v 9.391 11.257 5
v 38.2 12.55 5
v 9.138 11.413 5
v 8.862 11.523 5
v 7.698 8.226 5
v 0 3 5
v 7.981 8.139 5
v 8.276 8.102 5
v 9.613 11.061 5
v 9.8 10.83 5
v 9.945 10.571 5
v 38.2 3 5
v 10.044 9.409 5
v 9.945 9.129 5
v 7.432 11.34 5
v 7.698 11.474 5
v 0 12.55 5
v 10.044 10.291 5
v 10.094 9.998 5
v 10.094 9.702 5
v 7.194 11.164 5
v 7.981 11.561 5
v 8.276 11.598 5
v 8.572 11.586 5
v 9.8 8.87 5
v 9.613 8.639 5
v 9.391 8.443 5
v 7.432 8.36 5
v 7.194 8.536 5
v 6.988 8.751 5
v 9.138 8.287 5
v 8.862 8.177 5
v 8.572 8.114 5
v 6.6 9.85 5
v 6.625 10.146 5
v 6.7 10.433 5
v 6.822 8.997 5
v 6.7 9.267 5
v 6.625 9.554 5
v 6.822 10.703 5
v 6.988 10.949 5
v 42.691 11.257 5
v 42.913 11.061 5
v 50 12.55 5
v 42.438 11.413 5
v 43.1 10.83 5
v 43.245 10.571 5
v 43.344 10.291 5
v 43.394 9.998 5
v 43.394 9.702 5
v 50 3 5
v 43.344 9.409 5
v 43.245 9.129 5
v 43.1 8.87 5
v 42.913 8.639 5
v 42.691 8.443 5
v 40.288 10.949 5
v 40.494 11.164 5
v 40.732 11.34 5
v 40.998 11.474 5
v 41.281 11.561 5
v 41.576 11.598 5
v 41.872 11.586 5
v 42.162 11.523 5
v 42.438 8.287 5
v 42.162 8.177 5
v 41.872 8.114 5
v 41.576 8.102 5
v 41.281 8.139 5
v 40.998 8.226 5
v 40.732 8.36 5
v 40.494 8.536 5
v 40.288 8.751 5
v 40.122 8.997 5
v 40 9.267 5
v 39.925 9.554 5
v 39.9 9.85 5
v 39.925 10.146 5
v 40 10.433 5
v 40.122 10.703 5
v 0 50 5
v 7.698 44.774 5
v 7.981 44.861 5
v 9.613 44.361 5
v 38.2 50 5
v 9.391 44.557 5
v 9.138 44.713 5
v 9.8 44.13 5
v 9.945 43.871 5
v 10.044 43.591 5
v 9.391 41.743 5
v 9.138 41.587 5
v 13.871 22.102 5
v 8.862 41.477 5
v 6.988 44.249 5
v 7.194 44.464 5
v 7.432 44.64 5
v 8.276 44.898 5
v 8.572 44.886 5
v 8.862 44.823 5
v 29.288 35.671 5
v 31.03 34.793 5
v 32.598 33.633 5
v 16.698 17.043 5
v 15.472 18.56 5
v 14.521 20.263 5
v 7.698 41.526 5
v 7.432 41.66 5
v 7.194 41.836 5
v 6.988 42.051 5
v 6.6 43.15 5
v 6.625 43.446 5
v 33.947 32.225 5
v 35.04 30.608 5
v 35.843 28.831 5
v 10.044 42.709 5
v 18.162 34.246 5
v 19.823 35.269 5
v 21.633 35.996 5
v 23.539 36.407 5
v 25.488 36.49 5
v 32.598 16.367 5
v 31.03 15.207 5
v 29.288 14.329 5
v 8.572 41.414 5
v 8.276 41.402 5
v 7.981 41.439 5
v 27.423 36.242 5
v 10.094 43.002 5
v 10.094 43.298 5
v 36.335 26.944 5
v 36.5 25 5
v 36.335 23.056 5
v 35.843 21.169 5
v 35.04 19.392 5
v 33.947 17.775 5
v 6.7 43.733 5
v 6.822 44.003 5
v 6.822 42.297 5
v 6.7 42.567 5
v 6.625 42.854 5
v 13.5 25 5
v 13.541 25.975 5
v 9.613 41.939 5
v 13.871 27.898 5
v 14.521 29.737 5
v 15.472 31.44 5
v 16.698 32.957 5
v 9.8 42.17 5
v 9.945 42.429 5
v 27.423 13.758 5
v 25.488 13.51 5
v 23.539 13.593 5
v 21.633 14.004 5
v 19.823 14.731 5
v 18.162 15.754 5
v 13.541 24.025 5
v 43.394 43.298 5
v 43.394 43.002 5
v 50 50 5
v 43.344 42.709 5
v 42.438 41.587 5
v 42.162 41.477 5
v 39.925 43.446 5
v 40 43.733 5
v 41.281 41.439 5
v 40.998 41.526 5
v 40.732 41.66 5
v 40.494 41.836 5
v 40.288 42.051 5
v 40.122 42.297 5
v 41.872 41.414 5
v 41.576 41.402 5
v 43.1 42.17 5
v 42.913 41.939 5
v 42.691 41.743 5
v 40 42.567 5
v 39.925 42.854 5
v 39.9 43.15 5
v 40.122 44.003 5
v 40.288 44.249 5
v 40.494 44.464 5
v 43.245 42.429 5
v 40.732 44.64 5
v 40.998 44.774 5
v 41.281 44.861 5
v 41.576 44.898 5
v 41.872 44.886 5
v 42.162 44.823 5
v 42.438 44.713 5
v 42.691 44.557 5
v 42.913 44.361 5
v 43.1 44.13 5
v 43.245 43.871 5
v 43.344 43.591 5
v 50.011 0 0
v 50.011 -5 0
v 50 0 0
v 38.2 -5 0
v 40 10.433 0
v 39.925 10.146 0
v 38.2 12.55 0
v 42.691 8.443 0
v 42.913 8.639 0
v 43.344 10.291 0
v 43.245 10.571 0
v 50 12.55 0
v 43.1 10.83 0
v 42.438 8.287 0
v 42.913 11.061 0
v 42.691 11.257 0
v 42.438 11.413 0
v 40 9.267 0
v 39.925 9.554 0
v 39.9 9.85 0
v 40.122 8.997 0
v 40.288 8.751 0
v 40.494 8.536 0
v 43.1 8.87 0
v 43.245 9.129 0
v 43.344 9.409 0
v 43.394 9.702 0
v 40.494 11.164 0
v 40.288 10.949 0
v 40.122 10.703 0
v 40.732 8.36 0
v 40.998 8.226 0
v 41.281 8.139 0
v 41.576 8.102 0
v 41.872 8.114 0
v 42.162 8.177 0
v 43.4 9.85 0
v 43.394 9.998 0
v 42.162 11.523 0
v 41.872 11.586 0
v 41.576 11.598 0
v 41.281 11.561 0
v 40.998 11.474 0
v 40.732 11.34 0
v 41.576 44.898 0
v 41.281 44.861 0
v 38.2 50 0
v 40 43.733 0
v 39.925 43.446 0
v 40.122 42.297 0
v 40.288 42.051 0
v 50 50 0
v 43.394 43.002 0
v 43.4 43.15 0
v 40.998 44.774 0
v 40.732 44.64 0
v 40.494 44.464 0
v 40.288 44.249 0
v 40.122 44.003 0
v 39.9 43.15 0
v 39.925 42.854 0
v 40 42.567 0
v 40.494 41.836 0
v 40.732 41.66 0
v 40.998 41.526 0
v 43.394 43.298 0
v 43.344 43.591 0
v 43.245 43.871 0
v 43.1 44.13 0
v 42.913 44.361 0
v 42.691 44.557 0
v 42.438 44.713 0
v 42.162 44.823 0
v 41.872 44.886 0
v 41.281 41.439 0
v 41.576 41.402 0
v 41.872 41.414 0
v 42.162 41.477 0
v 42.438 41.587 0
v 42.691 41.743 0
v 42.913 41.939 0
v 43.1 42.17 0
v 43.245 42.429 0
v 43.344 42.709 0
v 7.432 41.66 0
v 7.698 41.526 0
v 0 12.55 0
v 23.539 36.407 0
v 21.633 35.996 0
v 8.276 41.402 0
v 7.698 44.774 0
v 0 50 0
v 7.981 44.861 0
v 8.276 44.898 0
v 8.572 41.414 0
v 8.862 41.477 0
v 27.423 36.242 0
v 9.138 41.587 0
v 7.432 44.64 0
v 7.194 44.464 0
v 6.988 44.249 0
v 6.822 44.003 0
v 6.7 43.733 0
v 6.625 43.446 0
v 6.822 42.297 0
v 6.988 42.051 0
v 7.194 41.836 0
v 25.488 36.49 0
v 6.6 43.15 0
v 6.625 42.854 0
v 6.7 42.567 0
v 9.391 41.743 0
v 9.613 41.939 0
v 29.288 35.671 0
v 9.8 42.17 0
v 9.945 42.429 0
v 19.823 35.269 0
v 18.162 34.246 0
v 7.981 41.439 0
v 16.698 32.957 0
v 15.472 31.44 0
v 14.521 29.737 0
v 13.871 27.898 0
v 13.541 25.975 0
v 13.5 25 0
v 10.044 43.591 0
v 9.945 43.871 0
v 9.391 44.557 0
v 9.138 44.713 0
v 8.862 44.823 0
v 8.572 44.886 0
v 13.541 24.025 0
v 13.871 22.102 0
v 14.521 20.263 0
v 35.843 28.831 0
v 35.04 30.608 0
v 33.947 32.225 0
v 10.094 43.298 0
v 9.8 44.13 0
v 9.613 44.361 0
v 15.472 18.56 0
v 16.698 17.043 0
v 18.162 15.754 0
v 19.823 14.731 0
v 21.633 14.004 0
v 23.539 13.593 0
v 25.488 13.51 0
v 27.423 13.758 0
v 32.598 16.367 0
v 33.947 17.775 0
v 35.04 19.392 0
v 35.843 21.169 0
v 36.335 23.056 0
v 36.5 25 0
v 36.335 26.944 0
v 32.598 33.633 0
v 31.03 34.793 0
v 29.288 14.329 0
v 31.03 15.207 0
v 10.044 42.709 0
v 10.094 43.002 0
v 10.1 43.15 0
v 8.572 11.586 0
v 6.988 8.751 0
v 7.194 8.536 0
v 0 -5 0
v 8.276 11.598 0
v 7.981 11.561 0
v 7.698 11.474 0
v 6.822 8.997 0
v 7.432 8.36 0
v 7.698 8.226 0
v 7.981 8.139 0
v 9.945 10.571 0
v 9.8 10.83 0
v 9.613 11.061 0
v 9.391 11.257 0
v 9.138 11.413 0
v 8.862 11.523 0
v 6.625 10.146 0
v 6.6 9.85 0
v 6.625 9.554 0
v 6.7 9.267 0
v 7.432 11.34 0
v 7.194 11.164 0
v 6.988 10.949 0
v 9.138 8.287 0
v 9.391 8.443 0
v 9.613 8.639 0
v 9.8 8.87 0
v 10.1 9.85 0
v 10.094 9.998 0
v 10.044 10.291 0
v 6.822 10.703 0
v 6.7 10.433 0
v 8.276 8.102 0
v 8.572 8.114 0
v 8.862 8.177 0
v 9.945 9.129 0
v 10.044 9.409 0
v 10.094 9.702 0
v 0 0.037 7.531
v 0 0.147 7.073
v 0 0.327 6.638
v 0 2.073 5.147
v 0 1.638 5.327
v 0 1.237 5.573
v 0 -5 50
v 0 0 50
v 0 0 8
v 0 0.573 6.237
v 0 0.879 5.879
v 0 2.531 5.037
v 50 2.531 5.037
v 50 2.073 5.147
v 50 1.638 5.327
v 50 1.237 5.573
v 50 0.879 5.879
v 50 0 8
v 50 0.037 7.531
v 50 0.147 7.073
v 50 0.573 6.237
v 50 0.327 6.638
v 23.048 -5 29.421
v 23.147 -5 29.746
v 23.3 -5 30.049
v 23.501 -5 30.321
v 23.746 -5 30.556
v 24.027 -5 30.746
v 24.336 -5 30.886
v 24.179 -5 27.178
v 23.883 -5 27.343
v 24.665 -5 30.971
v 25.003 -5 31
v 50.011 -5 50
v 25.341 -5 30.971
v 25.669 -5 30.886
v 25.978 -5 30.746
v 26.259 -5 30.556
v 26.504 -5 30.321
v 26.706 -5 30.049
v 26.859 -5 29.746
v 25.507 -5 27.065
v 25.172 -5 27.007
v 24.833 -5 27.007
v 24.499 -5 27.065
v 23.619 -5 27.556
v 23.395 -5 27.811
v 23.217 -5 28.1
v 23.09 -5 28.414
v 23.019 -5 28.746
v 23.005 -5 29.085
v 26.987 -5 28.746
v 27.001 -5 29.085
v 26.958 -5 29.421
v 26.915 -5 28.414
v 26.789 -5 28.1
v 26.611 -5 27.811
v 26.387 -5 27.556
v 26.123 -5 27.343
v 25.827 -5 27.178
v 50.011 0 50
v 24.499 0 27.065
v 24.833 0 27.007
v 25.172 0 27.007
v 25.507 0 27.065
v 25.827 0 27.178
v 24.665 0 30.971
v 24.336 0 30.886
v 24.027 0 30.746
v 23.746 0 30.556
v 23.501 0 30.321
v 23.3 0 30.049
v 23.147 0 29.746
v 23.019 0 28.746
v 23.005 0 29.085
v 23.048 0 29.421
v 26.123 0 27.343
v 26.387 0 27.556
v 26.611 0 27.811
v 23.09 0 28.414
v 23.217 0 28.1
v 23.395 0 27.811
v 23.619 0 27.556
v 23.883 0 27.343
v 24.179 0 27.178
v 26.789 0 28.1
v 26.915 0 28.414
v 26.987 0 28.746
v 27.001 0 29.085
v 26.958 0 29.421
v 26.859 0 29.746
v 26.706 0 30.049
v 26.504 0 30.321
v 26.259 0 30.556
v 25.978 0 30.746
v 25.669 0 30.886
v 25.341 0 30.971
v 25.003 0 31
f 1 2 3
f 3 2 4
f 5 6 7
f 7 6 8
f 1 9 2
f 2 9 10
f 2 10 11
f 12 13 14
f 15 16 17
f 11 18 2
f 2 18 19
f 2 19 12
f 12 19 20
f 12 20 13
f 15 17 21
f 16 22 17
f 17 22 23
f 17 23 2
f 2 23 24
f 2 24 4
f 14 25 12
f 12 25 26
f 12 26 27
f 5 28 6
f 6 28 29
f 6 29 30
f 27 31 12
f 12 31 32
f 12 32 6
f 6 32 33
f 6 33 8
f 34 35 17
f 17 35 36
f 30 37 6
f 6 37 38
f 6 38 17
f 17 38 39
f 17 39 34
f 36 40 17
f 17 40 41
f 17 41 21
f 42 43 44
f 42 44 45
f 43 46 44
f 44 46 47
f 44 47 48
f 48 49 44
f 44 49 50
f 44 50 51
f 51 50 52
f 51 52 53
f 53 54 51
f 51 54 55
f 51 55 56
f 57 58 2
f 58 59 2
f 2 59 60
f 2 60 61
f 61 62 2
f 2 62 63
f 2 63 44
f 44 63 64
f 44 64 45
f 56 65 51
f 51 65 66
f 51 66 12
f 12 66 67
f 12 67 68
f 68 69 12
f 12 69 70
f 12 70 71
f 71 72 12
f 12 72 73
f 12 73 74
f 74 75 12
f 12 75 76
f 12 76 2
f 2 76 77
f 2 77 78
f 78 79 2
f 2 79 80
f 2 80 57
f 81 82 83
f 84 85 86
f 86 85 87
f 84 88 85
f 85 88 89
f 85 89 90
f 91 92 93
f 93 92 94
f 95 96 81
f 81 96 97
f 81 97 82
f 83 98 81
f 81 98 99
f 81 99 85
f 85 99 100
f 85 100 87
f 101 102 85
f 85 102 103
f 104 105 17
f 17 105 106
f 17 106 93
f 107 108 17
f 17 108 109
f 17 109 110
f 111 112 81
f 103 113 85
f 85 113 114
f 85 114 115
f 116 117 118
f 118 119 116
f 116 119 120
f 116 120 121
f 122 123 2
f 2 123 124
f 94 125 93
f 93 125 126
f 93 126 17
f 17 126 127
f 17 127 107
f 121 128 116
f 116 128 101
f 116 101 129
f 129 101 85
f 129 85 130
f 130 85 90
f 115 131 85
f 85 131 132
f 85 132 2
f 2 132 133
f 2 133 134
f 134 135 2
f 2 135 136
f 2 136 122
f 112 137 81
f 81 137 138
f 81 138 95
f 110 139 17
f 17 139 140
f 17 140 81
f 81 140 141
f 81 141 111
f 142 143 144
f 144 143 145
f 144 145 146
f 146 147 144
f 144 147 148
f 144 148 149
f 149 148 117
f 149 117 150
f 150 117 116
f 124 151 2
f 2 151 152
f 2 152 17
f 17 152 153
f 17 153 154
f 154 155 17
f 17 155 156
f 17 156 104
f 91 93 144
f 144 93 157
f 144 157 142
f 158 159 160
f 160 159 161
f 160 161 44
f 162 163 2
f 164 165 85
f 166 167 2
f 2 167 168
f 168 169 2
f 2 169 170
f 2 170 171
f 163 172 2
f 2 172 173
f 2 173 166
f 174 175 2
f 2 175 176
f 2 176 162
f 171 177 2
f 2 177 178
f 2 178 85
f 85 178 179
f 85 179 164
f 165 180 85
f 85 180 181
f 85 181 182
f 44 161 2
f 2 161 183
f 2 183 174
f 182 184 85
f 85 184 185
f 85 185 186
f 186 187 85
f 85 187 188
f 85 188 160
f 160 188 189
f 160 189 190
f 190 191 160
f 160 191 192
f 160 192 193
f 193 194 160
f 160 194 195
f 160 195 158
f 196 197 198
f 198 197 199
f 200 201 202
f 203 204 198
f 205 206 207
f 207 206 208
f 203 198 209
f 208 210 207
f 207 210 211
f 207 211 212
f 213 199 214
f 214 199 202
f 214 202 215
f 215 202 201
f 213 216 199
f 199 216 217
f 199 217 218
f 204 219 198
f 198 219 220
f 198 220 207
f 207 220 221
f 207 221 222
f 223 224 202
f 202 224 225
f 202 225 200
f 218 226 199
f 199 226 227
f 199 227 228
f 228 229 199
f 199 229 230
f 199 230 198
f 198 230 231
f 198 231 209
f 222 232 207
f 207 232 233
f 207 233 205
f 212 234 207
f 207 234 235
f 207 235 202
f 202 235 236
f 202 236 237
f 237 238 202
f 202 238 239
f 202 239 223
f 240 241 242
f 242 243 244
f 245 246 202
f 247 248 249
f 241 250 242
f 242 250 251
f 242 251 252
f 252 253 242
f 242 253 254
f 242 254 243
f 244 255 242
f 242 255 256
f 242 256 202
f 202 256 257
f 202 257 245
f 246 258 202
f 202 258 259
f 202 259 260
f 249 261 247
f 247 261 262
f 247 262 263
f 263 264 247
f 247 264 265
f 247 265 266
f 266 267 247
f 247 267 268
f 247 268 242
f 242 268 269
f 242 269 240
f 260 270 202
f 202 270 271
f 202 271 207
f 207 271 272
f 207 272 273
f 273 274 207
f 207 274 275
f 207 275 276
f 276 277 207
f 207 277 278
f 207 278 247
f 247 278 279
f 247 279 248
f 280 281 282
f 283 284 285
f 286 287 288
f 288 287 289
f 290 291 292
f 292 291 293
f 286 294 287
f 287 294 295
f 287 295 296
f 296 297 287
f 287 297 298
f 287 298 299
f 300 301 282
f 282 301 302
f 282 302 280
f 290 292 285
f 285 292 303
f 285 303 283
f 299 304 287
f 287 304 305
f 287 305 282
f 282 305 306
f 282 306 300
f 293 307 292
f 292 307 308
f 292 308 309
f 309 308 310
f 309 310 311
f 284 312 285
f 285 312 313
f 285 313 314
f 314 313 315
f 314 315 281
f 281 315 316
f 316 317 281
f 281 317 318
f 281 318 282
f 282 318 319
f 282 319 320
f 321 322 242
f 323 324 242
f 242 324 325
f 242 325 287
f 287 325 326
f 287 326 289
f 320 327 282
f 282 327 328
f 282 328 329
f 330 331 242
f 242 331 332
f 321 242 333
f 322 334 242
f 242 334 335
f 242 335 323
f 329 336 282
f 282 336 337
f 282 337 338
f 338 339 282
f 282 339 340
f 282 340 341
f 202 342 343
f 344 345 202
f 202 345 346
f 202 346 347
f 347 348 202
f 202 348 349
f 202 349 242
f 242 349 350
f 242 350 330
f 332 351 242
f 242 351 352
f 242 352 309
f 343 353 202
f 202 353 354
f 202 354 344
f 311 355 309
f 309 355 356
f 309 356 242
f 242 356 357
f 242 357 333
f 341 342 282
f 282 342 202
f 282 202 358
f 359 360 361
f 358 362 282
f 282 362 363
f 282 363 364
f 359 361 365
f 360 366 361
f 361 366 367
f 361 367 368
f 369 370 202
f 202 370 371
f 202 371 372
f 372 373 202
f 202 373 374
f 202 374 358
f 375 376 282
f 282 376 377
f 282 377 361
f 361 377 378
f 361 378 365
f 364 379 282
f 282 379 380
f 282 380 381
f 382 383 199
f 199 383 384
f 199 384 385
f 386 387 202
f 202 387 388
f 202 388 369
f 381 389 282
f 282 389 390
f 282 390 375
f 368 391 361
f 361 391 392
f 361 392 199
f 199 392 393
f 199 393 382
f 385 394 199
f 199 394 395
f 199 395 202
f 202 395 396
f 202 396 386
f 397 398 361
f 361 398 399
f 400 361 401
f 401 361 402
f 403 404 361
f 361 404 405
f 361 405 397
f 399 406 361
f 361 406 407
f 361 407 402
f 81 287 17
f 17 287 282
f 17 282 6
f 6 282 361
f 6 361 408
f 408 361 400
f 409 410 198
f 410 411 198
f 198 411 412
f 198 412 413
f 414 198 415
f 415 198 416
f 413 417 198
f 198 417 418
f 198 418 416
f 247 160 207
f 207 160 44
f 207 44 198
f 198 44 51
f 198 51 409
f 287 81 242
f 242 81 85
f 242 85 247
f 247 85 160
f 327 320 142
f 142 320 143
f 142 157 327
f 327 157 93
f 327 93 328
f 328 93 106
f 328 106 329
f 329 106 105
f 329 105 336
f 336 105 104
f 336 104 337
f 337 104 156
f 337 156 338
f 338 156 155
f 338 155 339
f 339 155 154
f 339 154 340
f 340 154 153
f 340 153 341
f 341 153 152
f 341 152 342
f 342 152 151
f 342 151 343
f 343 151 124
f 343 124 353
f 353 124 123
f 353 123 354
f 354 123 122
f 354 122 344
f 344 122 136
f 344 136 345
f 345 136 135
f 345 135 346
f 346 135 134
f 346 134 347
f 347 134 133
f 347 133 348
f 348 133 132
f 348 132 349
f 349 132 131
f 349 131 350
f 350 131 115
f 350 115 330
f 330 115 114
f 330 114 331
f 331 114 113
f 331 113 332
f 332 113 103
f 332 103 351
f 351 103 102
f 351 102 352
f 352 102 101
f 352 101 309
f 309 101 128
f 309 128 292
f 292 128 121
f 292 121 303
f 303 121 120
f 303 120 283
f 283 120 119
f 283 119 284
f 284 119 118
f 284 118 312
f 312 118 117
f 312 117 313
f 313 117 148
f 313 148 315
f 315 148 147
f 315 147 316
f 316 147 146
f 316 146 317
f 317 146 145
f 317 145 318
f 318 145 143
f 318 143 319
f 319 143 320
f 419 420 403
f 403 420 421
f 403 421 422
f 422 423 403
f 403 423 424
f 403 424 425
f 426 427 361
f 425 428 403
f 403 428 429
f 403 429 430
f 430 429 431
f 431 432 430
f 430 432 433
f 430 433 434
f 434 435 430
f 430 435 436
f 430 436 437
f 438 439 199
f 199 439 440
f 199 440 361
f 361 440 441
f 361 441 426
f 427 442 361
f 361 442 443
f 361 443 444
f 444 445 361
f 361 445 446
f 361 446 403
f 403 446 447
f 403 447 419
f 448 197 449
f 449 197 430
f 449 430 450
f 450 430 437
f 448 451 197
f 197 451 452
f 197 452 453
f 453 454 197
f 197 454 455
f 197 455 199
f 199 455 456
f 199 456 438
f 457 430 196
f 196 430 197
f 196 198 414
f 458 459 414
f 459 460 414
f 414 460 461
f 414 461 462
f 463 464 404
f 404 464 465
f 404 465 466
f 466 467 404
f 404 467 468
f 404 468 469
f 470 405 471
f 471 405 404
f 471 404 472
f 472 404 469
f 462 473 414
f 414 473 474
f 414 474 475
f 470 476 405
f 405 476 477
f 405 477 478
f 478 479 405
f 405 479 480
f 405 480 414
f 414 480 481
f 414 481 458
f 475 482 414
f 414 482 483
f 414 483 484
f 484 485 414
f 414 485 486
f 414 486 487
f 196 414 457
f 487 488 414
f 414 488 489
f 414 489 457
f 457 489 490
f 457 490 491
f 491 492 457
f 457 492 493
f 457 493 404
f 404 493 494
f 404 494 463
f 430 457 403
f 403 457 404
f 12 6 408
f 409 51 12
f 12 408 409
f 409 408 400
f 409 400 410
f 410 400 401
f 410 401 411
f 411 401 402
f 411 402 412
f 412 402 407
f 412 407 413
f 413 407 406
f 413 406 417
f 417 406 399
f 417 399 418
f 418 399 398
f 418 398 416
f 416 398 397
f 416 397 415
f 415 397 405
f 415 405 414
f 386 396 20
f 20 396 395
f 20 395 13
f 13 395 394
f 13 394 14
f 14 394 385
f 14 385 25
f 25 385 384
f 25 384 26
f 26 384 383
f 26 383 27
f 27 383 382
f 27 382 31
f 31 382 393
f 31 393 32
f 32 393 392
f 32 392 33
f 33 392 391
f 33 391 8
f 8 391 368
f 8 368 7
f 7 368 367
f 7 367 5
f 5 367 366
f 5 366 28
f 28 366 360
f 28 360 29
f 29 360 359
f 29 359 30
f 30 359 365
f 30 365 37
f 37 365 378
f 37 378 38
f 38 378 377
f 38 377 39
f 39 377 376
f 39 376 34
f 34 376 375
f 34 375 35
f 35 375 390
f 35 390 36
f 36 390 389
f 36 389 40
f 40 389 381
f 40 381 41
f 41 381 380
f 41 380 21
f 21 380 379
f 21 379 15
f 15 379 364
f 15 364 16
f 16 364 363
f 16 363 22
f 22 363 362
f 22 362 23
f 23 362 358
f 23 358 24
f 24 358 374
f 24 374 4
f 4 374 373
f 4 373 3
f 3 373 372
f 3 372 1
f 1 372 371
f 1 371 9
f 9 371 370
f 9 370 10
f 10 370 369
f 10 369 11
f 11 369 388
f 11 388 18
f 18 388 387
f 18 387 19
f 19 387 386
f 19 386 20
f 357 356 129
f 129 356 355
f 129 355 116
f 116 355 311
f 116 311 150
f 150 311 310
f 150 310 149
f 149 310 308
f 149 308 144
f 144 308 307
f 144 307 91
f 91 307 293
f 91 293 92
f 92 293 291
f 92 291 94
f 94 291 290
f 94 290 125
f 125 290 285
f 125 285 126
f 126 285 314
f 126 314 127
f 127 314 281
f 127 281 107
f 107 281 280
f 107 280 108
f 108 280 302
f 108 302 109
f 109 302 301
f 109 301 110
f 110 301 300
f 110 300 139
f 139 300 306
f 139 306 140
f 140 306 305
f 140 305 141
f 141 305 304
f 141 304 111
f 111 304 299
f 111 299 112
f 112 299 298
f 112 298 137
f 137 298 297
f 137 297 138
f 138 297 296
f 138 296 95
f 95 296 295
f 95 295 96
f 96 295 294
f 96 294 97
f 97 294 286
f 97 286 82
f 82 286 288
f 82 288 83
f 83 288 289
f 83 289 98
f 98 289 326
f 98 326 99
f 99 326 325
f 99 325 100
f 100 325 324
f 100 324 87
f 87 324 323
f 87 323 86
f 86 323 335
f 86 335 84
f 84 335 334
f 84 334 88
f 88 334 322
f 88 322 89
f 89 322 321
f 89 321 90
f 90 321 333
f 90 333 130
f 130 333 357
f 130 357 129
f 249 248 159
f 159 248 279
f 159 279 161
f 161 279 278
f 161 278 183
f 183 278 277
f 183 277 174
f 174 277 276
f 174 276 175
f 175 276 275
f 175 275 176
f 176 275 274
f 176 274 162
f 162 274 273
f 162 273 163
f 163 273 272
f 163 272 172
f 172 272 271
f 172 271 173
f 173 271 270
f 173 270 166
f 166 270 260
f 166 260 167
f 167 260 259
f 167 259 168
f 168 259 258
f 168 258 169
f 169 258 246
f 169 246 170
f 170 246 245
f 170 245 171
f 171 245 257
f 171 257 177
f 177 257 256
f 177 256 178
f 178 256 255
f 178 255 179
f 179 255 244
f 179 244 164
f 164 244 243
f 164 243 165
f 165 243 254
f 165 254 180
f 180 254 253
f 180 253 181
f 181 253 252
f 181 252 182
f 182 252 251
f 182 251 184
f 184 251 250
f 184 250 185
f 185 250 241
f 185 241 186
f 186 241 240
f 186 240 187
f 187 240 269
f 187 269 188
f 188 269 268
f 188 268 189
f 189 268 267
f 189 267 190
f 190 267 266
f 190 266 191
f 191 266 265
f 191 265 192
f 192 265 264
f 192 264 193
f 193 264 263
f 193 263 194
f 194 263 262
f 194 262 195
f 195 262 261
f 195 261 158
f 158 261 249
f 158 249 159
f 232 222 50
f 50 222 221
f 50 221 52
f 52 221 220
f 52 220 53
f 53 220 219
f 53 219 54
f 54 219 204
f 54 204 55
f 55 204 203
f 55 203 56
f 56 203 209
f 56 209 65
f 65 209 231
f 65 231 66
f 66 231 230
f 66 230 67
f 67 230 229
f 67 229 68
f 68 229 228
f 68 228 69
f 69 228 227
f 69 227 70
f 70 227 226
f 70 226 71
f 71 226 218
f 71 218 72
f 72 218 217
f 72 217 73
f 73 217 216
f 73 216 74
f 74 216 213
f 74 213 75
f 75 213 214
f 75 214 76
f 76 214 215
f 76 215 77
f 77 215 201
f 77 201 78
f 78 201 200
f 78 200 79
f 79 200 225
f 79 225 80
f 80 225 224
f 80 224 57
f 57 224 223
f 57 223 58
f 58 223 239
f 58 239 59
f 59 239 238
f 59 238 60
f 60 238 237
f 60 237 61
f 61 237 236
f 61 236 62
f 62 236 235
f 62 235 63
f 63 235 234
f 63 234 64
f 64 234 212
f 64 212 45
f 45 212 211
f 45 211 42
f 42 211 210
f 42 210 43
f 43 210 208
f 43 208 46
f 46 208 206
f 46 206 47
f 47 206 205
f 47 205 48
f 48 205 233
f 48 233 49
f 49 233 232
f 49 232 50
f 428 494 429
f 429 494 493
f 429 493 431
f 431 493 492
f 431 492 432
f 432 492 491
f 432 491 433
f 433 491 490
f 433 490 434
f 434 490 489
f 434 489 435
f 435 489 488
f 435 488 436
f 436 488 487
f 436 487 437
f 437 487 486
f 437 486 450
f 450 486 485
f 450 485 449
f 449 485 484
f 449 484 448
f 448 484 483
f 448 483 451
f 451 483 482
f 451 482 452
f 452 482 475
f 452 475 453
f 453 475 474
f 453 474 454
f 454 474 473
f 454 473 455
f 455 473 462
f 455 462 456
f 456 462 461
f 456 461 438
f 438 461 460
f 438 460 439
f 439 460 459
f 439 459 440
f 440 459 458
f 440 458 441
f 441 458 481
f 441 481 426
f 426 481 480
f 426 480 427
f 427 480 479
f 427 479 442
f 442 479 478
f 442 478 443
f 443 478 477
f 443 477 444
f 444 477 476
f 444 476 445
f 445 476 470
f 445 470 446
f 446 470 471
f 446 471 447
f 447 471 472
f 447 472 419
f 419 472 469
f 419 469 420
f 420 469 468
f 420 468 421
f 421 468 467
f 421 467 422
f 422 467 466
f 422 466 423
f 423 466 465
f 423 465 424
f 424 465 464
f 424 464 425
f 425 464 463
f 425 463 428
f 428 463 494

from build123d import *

# Parameters (mm, degrees)
ESBO_O1_W                  = 50
ESBO_O1_H                  = 50
RESSALTO_EXTRUS_O1_DEPTH   = 5
ESBO_O2_R                  = 11.5
CORTE_EXTRUS_O1_DEPTH      = 8
CORTE_EXTRUS_O1_DEPTH_BACK = 14
ESBO_O3_W                  = 50.011024838
ESBO_O3_H                  = 5
RESSALTO_EXTRUS_O2_DEPTH   = 50
FILETE1_R                  = 3
ESBO_O4_R                  = 1.75
CORTE_EXTRUS_O2_DEPTH      = 11
ESBO_O5_R                  = 2
CORTE_EXTRUS_O4_DEPTH      = 14


with BuildPart() as part:
    # Esboço1 → Ressalto-extrusão1 (new body)
    with BuildSketch(Plane.XY):
        with Locations((25, 25)):
            Rectangle(ESBO_O1_W, ESBO_O1_H)
    extrude(amount=RESSALTO_EXTRUS_O1_DEPTH)

    # Esboço2 → Corte-extrusão1 (cut, two sides)
    with BuildSketch(Plane.XY) as corte_extrus_o1_sk:
        with Locations((25, 25)):
            Circle(ESBO_O2_R)
    extrude(amount=CORTE_EXTRUS_O1_DEPTH, mode=Mode.SUBTRACT)
    extrude(corte_extrus_o1_sk.sketch, amount=-CORTE_EXTRUS_O1_DEPTH_BACK, mode=Mode.SUBTRACT)

    # Esboço3 → Ressalto-extrusão2 (add)
    with BuildSketch(Plane.XY):
        with Locations((25.005512419, -2.5)):
            Rectangle(ESBO_O3_W, ESBO_O3_H)
    extrude(amount=RESSALTO_EXTRUS_O2_DEPTH)

    # Filete1
    filete1_edges = [part.edges().sort_by_distance(p)[0] for p in [
        (25, 0, 5),
    ]]
    fillet(filete1_edges, radius=FILETE1_R)

    # Esboço4 → Corte-extrusão2 (cut)
    with BuildSketch(Plane.XY):
        with Locations((8.35, 43.15)):
            Circle(ESBO_O4_R)
        with Locations((41.65, 43.15)):
            Circle(ESBO_O4_R)
        with Locations((41.65, 9.85)):
            Circle(ESBO_O4_R)
        with Locations((8.35, 9.85)):
            Circle(ESBO_O4_R)
    extrude(amount=CORTE_EXTRUS_O2_DEPTH, mode=Mode.SUBTRACT)

    # Esboço5 → Corte-extrusão4 (cut)
    with BuildSketch(Plane(origin=(0, 0, 0), x_dir=(1, 0, 0), z_dir=(0, 1, 0))):
        with Locations((25.002756209, -29)):
            Circle(ESBO_O5_R)
    extrude(amount=-CORTE_EXTRUS_O4_DEPTH, mode=Mode.SUBTRACT)


solid = part.part
